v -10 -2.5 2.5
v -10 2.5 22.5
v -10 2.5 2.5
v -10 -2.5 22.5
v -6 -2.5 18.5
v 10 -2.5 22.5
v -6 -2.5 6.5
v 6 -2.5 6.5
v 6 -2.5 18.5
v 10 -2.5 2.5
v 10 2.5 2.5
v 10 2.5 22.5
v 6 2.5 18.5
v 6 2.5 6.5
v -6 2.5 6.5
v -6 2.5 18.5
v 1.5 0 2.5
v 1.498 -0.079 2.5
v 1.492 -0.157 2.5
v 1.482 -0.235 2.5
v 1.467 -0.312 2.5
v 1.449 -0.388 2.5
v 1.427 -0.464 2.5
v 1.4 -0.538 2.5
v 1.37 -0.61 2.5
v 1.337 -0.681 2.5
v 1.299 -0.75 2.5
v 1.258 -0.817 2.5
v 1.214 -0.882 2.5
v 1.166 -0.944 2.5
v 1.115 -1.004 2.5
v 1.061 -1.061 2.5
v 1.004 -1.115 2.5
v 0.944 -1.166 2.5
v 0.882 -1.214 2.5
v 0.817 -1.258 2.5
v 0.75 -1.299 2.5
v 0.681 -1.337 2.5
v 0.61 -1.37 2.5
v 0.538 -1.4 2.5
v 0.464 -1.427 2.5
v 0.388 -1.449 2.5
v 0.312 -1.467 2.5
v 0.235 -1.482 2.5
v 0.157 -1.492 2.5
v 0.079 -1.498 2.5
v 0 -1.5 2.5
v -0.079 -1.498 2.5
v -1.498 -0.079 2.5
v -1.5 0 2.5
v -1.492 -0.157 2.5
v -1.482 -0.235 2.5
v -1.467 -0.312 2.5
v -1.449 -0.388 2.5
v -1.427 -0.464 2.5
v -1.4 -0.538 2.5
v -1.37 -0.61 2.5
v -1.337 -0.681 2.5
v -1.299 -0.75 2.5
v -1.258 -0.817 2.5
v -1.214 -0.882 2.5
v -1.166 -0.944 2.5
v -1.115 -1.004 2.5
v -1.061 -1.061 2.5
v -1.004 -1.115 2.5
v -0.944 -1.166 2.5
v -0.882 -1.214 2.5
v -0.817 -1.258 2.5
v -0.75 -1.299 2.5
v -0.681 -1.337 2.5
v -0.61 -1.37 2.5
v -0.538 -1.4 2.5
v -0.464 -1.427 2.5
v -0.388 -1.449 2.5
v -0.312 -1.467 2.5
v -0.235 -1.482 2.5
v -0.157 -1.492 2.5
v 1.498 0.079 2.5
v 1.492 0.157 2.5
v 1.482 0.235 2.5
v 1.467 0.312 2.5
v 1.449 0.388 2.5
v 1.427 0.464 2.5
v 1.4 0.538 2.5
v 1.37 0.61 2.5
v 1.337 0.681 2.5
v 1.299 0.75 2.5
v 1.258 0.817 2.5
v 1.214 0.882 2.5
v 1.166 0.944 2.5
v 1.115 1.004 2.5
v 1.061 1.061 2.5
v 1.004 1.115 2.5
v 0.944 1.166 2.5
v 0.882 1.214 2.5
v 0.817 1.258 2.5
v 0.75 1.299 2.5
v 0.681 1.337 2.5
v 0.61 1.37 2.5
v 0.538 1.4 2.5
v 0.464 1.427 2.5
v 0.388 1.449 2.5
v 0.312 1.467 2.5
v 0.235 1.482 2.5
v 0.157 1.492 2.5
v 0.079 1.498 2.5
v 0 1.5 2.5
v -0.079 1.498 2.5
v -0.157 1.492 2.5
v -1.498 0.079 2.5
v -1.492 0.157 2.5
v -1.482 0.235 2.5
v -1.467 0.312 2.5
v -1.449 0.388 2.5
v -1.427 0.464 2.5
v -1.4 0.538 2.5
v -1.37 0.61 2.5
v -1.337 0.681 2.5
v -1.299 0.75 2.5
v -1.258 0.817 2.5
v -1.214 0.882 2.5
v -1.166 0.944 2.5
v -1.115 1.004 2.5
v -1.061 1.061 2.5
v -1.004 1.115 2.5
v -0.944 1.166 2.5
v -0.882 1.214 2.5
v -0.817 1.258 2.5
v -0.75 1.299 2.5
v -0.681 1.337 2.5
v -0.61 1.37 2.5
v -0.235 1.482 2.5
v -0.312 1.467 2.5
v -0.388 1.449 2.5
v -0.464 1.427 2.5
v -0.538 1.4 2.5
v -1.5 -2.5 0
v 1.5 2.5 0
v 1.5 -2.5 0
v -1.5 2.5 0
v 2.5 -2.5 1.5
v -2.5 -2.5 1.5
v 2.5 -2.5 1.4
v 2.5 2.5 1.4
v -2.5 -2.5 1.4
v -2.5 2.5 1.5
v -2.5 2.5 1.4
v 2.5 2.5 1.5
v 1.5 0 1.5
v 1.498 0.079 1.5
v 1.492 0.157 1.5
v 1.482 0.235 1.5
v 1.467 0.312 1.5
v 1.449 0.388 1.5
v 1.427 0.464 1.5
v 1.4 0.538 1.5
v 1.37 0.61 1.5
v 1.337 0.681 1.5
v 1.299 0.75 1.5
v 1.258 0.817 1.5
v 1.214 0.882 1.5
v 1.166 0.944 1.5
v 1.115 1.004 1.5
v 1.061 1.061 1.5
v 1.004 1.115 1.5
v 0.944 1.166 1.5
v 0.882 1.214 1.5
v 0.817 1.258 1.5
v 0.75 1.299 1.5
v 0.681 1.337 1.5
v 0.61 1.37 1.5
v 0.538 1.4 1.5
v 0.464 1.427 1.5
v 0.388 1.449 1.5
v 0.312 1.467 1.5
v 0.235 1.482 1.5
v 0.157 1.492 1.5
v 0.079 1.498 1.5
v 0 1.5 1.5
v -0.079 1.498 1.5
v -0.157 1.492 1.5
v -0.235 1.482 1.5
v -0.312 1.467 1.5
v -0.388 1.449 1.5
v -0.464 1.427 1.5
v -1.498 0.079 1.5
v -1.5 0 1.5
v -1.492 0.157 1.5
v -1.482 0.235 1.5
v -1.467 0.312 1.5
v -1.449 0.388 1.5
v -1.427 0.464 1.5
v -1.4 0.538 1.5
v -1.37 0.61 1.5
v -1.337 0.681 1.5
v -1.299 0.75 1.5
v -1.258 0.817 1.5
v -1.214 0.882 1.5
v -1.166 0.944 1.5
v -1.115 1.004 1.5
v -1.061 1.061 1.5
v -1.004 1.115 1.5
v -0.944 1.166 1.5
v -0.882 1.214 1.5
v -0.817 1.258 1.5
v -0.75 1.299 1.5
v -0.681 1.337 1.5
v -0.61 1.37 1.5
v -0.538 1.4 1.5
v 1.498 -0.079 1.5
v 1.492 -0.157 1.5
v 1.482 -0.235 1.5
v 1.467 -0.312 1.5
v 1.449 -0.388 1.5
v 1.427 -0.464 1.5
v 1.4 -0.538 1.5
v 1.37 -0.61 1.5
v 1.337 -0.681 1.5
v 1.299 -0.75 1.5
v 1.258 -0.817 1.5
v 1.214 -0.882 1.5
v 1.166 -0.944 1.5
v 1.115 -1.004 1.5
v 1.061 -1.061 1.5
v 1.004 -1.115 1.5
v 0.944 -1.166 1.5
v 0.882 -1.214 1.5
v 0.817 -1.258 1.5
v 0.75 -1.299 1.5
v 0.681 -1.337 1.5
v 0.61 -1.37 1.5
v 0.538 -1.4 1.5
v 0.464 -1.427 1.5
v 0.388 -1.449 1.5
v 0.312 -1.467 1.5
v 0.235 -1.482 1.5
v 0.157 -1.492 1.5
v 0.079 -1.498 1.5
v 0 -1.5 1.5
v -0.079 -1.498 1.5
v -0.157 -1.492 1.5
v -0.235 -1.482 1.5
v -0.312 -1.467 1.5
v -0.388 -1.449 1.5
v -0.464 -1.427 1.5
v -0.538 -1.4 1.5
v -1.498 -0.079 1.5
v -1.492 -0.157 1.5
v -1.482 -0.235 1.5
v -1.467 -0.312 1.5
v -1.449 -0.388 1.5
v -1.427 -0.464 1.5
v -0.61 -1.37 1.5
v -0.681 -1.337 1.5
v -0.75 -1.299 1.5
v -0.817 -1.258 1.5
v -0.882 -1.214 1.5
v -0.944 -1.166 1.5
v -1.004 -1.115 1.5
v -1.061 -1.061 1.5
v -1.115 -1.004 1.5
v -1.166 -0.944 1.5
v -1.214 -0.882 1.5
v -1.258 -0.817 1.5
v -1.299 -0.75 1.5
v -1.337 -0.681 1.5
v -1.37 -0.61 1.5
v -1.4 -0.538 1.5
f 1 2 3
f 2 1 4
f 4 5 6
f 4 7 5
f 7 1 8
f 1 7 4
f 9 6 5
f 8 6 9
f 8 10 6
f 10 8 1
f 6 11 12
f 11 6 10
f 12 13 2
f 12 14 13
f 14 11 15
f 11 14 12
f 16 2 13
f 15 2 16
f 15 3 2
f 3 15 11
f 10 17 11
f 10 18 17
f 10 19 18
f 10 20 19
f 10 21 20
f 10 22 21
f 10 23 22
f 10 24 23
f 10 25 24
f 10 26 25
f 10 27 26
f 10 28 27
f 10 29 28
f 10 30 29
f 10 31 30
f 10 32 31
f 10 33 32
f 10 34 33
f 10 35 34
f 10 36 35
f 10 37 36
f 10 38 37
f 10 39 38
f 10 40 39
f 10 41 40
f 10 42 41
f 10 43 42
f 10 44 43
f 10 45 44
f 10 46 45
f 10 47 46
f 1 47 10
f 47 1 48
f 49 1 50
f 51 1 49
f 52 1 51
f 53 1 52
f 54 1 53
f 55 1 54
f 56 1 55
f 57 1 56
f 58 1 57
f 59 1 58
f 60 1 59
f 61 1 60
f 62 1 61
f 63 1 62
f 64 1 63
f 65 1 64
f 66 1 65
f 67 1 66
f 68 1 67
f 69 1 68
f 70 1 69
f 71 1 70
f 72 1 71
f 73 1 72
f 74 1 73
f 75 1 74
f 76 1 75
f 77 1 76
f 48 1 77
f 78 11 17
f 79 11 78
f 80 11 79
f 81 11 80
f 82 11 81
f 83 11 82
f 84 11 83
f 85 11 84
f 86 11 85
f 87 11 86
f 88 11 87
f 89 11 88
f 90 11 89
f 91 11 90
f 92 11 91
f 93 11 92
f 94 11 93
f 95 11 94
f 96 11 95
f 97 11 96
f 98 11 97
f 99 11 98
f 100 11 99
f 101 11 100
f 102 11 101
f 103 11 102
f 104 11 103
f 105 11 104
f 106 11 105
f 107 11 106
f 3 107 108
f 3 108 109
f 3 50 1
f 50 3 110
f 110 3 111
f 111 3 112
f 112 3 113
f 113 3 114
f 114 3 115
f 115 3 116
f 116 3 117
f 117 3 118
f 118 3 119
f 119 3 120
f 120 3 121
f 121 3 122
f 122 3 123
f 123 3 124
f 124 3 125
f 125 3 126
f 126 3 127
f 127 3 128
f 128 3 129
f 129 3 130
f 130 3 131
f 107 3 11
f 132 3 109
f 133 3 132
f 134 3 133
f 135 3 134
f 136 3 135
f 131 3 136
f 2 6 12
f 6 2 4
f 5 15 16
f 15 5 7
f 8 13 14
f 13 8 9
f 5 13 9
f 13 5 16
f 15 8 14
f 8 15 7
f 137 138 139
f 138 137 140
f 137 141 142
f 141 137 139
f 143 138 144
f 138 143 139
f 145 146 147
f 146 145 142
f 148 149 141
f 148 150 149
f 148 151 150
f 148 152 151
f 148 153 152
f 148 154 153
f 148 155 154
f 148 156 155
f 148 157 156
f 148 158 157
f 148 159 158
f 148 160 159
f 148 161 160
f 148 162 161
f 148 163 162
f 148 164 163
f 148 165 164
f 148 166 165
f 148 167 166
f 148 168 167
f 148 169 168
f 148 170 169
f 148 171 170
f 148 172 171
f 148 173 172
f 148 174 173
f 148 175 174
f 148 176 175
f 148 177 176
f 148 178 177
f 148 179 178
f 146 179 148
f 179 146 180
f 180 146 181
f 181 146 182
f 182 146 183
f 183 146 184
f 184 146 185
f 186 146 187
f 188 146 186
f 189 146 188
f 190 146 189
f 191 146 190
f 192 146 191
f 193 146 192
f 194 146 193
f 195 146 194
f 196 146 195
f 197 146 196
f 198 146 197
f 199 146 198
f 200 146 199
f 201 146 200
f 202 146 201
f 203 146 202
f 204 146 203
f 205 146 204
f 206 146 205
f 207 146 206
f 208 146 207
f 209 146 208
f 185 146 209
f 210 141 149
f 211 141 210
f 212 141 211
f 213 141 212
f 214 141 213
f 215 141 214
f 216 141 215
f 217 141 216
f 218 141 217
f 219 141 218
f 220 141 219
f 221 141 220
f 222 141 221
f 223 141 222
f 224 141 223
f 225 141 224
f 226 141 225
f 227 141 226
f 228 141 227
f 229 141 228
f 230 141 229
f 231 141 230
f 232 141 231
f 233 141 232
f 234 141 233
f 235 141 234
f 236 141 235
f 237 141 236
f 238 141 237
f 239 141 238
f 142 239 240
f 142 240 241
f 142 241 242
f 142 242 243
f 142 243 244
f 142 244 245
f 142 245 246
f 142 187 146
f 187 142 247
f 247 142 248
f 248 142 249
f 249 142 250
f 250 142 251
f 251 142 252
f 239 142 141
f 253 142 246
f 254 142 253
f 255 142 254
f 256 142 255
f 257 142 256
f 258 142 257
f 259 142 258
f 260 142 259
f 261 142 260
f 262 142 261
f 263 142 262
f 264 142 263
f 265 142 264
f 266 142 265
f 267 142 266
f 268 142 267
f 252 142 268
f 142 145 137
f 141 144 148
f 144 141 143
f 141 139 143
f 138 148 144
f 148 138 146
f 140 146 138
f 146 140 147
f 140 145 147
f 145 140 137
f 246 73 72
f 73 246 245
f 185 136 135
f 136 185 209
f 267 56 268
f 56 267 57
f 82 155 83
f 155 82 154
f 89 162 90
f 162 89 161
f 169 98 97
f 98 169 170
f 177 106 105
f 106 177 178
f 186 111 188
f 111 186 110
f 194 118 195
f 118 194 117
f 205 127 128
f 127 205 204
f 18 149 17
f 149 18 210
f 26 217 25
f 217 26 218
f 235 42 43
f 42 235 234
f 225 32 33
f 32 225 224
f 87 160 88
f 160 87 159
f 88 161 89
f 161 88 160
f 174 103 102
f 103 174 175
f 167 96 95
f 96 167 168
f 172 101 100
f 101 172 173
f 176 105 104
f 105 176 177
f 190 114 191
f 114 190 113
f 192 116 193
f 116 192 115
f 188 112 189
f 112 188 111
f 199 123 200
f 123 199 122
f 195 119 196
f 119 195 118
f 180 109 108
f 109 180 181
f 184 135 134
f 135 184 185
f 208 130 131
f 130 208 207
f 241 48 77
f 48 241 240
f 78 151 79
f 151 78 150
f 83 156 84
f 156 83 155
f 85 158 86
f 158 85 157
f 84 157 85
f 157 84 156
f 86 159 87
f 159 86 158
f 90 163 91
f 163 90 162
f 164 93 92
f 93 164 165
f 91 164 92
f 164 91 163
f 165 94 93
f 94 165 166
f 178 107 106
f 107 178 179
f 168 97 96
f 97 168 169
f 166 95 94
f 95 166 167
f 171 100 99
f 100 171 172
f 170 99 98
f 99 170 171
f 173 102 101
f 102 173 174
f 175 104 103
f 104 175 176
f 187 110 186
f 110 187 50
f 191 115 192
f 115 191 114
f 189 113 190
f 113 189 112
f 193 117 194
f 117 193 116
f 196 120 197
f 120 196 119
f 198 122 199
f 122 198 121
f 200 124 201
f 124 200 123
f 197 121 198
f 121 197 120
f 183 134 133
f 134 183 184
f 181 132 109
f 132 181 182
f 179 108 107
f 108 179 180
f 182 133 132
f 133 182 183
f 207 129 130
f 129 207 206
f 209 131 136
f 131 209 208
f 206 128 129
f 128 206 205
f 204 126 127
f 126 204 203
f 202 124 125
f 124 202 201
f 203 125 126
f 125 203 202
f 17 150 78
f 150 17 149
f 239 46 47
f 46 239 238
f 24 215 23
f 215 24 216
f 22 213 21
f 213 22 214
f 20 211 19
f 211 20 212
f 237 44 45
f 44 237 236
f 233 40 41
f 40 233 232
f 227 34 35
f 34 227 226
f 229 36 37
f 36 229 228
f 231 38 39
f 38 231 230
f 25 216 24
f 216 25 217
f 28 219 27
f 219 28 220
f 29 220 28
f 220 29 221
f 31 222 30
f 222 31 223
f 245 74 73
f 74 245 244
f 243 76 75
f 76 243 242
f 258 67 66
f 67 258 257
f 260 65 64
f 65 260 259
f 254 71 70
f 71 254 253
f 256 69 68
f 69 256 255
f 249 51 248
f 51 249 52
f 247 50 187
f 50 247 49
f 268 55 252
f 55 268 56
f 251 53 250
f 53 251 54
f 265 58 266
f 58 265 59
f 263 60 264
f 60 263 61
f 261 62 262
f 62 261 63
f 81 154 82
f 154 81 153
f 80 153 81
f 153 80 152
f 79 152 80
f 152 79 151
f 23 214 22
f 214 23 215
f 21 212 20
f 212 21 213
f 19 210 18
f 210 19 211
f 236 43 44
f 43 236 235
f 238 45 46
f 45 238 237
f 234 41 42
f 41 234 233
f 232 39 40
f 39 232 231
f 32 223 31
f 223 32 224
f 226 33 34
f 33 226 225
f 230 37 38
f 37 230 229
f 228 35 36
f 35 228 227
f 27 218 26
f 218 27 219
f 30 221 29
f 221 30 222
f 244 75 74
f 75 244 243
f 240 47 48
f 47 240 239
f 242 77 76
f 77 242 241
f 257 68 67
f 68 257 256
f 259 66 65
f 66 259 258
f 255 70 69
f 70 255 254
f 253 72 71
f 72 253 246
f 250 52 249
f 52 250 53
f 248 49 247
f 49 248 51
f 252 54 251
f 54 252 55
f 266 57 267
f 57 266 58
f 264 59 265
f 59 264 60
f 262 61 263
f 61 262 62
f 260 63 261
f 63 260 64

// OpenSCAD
$fn = 120;


rotate([90, 0, 0])
hull() {
    translate([0, 0.75, 0])
        cube([3, 1.5, 5], center = true);
    translate([0, 1.45, 0])
        cube([5, 0.1, 5], center = true);
}

cylinder(d = 3, h = 3);

translate([0, 0, 12.5])
rotate([90, 0, 0])
difference() {
    cube([20, 20, 5], center = true);
    cube([12, 12, 6], center = true);
}
